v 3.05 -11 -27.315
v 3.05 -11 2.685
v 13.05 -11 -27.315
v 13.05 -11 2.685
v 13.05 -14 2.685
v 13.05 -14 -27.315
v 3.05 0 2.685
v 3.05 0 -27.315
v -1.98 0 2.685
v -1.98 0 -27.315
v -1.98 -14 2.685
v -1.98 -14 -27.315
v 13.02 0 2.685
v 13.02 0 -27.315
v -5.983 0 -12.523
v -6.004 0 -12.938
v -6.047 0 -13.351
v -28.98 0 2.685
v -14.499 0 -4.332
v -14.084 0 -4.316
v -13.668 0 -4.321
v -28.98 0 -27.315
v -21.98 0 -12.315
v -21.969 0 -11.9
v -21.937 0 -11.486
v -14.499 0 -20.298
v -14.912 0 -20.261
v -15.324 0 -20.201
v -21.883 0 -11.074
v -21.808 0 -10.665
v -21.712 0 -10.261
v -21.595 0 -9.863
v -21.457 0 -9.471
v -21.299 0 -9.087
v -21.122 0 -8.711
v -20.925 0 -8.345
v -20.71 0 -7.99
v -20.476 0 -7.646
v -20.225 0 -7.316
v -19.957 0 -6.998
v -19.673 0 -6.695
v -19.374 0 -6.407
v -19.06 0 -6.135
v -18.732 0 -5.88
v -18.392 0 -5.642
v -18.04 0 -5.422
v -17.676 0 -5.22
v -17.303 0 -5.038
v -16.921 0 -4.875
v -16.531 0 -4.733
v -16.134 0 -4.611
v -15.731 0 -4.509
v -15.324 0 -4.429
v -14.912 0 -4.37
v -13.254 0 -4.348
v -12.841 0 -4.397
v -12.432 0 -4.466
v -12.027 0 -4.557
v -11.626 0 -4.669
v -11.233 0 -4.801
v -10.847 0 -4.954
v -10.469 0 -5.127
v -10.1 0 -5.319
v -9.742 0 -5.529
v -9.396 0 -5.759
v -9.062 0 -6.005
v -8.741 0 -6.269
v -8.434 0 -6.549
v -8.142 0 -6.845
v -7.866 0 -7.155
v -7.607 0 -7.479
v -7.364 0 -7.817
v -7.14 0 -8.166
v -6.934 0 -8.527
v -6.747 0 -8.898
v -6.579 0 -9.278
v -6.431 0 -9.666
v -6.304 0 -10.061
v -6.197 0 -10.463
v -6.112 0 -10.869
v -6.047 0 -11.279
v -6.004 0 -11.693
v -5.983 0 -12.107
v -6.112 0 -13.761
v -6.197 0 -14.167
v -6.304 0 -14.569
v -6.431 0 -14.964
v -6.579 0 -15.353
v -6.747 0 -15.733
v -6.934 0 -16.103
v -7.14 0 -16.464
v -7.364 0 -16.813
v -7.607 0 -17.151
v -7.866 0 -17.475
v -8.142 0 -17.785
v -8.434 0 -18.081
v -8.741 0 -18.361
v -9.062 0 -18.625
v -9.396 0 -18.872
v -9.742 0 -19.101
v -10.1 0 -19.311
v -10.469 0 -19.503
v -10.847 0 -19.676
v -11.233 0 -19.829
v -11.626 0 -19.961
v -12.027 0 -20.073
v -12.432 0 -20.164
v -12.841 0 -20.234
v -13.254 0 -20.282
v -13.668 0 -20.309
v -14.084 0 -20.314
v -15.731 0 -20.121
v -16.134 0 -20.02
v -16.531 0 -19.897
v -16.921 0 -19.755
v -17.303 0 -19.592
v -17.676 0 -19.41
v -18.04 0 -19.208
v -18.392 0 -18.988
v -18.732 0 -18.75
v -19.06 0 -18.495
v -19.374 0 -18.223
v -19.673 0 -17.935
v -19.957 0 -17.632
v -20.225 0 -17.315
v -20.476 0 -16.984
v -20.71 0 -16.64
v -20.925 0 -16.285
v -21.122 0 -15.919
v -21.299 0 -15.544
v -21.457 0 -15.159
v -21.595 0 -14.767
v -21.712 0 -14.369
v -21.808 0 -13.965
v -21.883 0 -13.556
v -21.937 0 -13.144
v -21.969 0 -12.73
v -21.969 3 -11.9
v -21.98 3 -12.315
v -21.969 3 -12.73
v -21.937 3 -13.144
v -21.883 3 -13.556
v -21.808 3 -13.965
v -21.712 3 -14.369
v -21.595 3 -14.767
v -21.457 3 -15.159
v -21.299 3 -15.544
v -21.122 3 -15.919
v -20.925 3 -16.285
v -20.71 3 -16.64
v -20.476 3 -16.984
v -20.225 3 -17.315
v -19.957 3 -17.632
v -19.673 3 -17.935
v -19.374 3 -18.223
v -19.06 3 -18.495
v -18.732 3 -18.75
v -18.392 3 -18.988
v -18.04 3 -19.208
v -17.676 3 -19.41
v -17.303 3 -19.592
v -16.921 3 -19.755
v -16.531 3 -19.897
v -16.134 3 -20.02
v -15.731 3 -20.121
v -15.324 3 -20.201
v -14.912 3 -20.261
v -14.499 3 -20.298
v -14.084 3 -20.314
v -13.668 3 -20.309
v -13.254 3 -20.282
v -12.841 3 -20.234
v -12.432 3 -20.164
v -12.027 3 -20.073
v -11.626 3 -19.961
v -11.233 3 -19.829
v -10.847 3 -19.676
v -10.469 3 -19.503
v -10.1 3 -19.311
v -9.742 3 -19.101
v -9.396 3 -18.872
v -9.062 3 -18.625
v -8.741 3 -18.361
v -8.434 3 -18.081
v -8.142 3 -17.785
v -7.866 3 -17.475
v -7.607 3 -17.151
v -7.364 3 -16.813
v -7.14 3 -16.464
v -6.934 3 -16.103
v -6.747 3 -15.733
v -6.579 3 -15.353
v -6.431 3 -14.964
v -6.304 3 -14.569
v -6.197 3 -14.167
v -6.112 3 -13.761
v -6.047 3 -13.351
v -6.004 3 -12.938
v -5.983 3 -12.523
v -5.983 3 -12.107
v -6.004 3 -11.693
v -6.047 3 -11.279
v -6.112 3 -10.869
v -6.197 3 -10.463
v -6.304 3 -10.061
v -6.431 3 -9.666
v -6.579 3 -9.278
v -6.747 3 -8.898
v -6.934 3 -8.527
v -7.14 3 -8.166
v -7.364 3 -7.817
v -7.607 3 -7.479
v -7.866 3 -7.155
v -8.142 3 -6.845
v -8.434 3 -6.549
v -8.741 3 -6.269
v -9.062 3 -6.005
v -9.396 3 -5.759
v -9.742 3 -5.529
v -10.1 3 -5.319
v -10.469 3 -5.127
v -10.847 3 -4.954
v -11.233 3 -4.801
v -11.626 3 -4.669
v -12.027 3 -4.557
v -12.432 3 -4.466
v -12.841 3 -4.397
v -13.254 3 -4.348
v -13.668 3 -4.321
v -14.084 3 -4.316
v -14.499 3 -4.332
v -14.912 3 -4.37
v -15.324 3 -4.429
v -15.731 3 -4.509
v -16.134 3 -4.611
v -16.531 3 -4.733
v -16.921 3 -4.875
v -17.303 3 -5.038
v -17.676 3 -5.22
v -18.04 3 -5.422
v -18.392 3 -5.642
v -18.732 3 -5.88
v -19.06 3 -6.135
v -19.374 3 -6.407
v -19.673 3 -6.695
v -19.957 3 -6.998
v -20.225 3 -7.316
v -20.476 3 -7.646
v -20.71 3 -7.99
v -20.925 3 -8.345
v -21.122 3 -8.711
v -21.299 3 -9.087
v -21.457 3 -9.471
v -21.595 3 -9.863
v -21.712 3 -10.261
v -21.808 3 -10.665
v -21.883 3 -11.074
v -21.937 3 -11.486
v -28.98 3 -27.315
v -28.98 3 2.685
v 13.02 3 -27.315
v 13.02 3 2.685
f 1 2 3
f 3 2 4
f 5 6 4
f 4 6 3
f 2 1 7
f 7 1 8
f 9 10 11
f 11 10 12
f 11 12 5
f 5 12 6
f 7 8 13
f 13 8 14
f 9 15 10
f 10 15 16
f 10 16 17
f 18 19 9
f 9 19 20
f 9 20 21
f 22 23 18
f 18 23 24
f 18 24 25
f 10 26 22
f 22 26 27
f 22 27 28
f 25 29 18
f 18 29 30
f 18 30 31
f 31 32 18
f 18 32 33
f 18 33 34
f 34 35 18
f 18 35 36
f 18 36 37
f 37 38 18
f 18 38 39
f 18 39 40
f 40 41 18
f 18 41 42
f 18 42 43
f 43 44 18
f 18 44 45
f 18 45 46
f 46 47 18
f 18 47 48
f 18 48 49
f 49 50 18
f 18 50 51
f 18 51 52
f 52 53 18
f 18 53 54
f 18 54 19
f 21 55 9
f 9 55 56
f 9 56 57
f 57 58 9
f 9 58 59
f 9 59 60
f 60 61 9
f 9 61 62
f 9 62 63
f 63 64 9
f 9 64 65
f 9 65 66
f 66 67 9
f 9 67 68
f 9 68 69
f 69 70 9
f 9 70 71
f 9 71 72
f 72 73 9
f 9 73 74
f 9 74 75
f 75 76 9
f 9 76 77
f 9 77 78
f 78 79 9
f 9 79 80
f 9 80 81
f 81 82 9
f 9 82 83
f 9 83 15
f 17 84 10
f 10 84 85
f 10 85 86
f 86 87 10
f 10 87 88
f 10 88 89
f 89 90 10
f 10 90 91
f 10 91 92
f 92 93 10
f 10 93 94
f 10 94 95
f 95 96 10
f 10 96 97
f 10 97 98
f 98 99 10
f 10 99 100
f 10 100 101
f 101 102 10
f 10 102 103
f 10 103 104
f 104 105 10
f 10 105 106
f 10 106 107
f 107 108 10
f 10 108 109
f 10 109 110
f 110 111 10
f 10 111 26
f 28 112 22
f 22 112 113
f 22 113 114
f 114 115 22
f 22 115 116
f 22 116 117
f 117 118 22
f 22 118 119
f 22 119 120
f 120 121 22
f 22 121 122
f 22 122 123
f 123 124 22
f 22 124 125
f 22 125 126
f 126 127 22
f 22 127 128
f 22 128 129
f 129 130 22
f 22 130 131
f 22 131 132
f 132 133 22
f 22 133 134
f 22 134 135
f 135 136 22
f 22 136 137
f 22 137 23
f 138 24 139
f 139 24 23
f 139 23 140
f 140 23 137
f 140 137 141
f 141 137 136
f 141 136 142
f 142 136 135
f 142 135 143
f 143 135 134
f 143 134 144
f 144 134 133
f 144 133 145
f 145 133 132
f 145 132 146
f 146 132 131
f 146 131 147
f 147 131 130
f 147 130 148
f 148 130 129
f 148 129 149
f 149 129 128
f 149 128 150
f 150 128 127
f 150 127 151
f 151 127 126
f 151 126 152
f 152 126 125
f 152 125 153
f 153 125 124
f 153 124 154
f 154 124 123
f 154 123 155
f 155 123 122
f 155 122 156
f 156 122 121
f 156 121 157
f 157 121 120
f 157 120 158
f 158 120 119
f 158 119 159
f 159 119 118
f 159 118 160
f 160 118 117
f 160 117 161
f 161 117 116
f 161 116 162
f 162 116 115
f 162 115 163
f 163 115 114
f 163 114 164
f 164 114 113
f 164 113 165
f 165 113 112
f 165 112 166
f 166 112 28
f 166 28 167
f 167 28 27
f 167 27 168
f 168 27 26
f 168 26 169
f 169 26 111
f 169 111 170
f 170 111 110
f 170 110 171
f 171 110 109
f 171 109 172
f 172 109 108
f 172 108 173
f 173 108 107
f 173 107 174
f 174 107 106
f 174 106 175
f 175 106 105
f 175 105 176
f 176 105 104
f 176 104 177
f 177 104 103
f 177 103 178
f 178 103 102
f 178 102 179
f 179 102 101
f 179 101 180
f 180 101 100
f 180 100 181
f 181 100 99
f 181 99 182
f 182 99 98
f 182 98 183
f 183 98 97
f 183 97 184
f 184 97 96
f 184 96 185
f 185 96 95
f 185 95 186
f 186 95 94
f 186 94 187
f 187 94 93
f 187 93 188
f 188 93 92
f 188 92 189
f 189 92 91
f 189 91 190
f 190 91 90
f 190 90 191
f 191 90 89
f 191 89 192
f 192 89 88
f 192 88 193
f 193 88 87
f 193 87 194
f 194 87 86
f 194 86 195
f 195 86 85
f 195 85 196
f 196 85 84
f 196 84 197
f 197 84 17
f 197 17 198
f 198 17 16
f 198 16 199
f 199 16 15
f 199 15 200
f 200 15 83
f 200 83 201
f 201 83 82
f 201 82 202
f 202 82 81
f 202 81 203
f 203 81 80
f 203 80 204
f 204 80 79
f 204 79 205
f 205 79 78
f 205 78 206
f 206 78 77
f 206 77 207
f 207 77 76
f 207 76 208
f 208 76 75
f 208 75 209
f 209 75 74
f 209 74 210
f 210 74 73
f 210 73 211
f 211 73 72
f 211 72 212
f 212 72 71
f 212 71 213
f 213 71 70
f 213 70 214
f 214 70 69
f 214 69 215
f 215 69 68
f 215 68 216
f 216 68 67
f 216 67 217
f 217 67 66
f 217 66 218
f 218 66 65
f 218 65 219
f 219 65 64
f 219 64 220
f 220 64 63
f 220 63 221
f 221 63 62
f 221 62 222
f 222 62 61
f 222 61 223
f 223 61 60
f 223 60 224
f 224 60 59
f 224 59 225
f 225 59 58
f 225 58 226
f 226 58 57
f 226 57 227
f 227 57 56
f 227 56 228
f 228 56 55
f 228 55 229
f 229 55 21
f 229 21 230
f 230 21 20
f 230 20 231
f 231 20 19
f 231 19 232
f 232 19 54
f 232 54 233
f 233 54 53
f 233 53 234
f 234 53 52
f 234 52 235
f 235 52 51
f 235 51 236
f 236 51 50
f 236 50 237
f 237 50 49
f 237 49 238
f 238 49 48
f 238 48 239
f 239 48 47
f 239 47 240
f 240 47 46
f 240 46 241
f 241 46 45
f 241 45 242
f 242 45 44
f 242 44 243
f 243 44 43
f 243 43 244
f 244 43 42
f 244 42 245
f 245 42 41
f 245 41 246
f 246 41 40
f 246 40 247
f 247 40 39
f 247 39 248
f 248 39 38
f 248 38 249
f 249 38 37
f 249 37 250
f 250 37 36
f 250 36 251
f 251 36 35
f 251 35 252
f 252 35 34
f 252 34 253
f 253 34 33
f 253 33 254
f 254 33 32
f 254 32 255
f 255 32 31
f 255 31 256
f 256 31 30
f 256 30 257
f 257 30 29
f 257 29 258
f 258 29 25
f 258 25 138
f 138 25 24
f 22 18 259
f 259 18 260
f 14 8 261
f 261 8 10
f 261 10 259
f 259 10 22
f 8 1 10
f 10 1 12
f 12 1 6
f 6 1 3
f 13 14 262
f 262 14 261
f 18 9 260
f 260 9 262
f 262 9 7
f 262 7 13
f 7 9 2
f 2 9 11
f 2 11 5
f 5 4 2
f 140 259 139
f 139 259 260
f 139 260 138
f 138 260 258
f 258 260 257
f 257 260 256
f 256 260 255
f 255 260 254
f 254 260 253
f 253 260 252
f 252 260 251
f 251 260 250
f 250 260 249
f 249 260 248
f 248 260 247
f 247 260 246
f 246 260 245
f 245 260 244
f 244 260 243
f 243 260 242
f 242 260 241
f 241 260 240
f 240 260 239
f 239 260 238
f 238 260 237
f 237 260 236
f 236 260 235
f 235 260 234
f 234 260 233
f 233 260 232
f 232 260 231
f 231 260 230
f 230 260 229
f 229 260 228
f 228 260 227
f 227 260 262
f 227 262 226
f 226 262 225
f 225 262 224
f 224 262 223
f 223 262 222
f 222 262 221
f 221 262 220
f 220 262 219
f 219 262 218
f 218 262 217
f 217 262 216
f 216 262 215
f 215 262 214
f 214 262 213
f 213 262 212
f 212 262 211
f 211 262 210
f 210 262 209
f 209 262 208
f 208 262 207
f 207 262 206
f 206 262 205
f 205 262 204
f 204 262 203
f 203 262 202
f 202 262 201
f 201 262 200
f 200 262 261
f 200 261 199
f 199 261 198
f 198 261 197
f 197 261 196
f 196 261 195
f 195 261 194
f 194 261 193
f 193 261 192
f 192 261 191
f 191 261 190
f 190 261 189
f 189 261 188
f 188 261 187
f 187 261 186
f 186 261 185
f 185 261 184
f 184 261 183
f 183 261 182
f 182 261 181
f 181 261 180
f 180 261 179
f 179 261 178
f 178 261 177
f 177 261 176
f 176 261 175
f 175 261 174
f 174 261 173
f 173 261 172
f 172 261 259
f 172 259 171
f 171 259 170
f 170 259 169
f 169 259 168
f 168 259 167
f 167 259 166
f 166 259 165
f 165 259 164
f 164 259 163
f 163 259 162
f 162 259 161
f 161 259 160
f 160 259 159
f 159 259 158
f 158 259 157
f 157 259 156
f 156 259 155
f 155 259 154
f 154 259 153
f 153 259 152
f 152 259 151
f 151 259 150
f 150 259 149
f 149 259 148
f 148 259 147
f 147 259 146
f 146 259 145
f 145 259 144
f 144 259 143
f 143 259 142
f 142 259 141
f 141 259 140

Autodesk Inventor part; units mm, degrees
ref_plane "YZ Plane" through (0, 0, 0) normal (1, 0, 0) x (0, 1, 0)
ref_plane "XZ Plane" through (0, 0, 0) normal (0, 1, 0) x (-1, 0, 0)
ref_plane "XY Plane" through (0, 0, 0) normal (0, 0, 1) x (1, 0, 0)
sketch "スケッチ1" plane through (0, 0, 0) normal (0, 1, 0) x (-1, 0, 0)
  line L0 (28.9798, 2.6849) -> (-13.0202, 2.6849)
  line L1 (-13.0202, 2.6849) -> (-13.0202, -27.3151)
  line L2 (-13.0202, -27.3151) -> (28.9798, -27.3151)
  line L3 (28.9798, -27.3151) -> (28.9798, 2.6849)
  circle A0 centre (13.9798, -12.3151) radius 8
  line L4 (-13.0202, 2.6849) -> (-3.0202, 2.6849)
  line L5 (-3.0202, 2.6849) -> (-3.0202, -27.3151)
  line L6 (-3.0202, -27.3151) -> (-13.0202, -27.3151)
  line L7 (-13.0202, -27.3151) -> (-13.0202, 2.6849)
  point P0 (0, 0)
  dimension "d0" = 16
  dimension "d1" = 30
  dimension "d2" = 15
  dimension "d3" = 15
  dimension "d4" = 15
  dimension "d5" = 27
  dimension "d6" = 10
  dimension "d7" = 9
extrude "押し出し1" add sketch "スケッチ1" along normal blind 3
sketch "スケッチ2" plane through (0, 0, 0) normal (0, -1, 0) x (1, 0, 0)
  line L0 (-28.9798, 2.6849) -> (13.0202, 2.6849) projected
  line L1 (13.0202, -27.3151) -> (-28.9798, -27.3151) projected
  line L2 (3.0499, 2.6849) -> (-1.9798, 2.6849)
  line L3 (-1.9798, 2.6849) -> (-1.9798, -27.3151)
  line L4 (-1.9798, -27.3151) -> (3.0499, -27.3151)
  line L5 (3.0499, -27.3151) -> (3.0499, 2.6849)
  circle A0 centre (-13.9798, -12.3151) radius 8 projected
  point P0 (0, 0)
  dimension "d10" = 4
extrude "押し出し2" add sketch "スケッチ2" along normal blind 14 contours L0 L5 L1 L3
sketch "スケッチ3" plane through (3.0499, 0, 2.6849) normal (1, 0, 0) x (0, 0, -1)
  line L0 (0, -14) -> (30, -14) projected
  line L1 (30, -14) -> (0, -14)
  line L2 (0, -14) -> (0, -11)
  line L3 (0, -11) -> (30, -11)
  line L4 (30, -11) -> (30, -14)
  line L5 (0, 0) -> (30, 0) projected
  point P0 (2.6849, 0)
  dimension "d13" = 3
  dimension "d14" = 11
extrude "押し出し3" add sketch "スケッチ3" along normal blind 10
properties part number "emswparts"
